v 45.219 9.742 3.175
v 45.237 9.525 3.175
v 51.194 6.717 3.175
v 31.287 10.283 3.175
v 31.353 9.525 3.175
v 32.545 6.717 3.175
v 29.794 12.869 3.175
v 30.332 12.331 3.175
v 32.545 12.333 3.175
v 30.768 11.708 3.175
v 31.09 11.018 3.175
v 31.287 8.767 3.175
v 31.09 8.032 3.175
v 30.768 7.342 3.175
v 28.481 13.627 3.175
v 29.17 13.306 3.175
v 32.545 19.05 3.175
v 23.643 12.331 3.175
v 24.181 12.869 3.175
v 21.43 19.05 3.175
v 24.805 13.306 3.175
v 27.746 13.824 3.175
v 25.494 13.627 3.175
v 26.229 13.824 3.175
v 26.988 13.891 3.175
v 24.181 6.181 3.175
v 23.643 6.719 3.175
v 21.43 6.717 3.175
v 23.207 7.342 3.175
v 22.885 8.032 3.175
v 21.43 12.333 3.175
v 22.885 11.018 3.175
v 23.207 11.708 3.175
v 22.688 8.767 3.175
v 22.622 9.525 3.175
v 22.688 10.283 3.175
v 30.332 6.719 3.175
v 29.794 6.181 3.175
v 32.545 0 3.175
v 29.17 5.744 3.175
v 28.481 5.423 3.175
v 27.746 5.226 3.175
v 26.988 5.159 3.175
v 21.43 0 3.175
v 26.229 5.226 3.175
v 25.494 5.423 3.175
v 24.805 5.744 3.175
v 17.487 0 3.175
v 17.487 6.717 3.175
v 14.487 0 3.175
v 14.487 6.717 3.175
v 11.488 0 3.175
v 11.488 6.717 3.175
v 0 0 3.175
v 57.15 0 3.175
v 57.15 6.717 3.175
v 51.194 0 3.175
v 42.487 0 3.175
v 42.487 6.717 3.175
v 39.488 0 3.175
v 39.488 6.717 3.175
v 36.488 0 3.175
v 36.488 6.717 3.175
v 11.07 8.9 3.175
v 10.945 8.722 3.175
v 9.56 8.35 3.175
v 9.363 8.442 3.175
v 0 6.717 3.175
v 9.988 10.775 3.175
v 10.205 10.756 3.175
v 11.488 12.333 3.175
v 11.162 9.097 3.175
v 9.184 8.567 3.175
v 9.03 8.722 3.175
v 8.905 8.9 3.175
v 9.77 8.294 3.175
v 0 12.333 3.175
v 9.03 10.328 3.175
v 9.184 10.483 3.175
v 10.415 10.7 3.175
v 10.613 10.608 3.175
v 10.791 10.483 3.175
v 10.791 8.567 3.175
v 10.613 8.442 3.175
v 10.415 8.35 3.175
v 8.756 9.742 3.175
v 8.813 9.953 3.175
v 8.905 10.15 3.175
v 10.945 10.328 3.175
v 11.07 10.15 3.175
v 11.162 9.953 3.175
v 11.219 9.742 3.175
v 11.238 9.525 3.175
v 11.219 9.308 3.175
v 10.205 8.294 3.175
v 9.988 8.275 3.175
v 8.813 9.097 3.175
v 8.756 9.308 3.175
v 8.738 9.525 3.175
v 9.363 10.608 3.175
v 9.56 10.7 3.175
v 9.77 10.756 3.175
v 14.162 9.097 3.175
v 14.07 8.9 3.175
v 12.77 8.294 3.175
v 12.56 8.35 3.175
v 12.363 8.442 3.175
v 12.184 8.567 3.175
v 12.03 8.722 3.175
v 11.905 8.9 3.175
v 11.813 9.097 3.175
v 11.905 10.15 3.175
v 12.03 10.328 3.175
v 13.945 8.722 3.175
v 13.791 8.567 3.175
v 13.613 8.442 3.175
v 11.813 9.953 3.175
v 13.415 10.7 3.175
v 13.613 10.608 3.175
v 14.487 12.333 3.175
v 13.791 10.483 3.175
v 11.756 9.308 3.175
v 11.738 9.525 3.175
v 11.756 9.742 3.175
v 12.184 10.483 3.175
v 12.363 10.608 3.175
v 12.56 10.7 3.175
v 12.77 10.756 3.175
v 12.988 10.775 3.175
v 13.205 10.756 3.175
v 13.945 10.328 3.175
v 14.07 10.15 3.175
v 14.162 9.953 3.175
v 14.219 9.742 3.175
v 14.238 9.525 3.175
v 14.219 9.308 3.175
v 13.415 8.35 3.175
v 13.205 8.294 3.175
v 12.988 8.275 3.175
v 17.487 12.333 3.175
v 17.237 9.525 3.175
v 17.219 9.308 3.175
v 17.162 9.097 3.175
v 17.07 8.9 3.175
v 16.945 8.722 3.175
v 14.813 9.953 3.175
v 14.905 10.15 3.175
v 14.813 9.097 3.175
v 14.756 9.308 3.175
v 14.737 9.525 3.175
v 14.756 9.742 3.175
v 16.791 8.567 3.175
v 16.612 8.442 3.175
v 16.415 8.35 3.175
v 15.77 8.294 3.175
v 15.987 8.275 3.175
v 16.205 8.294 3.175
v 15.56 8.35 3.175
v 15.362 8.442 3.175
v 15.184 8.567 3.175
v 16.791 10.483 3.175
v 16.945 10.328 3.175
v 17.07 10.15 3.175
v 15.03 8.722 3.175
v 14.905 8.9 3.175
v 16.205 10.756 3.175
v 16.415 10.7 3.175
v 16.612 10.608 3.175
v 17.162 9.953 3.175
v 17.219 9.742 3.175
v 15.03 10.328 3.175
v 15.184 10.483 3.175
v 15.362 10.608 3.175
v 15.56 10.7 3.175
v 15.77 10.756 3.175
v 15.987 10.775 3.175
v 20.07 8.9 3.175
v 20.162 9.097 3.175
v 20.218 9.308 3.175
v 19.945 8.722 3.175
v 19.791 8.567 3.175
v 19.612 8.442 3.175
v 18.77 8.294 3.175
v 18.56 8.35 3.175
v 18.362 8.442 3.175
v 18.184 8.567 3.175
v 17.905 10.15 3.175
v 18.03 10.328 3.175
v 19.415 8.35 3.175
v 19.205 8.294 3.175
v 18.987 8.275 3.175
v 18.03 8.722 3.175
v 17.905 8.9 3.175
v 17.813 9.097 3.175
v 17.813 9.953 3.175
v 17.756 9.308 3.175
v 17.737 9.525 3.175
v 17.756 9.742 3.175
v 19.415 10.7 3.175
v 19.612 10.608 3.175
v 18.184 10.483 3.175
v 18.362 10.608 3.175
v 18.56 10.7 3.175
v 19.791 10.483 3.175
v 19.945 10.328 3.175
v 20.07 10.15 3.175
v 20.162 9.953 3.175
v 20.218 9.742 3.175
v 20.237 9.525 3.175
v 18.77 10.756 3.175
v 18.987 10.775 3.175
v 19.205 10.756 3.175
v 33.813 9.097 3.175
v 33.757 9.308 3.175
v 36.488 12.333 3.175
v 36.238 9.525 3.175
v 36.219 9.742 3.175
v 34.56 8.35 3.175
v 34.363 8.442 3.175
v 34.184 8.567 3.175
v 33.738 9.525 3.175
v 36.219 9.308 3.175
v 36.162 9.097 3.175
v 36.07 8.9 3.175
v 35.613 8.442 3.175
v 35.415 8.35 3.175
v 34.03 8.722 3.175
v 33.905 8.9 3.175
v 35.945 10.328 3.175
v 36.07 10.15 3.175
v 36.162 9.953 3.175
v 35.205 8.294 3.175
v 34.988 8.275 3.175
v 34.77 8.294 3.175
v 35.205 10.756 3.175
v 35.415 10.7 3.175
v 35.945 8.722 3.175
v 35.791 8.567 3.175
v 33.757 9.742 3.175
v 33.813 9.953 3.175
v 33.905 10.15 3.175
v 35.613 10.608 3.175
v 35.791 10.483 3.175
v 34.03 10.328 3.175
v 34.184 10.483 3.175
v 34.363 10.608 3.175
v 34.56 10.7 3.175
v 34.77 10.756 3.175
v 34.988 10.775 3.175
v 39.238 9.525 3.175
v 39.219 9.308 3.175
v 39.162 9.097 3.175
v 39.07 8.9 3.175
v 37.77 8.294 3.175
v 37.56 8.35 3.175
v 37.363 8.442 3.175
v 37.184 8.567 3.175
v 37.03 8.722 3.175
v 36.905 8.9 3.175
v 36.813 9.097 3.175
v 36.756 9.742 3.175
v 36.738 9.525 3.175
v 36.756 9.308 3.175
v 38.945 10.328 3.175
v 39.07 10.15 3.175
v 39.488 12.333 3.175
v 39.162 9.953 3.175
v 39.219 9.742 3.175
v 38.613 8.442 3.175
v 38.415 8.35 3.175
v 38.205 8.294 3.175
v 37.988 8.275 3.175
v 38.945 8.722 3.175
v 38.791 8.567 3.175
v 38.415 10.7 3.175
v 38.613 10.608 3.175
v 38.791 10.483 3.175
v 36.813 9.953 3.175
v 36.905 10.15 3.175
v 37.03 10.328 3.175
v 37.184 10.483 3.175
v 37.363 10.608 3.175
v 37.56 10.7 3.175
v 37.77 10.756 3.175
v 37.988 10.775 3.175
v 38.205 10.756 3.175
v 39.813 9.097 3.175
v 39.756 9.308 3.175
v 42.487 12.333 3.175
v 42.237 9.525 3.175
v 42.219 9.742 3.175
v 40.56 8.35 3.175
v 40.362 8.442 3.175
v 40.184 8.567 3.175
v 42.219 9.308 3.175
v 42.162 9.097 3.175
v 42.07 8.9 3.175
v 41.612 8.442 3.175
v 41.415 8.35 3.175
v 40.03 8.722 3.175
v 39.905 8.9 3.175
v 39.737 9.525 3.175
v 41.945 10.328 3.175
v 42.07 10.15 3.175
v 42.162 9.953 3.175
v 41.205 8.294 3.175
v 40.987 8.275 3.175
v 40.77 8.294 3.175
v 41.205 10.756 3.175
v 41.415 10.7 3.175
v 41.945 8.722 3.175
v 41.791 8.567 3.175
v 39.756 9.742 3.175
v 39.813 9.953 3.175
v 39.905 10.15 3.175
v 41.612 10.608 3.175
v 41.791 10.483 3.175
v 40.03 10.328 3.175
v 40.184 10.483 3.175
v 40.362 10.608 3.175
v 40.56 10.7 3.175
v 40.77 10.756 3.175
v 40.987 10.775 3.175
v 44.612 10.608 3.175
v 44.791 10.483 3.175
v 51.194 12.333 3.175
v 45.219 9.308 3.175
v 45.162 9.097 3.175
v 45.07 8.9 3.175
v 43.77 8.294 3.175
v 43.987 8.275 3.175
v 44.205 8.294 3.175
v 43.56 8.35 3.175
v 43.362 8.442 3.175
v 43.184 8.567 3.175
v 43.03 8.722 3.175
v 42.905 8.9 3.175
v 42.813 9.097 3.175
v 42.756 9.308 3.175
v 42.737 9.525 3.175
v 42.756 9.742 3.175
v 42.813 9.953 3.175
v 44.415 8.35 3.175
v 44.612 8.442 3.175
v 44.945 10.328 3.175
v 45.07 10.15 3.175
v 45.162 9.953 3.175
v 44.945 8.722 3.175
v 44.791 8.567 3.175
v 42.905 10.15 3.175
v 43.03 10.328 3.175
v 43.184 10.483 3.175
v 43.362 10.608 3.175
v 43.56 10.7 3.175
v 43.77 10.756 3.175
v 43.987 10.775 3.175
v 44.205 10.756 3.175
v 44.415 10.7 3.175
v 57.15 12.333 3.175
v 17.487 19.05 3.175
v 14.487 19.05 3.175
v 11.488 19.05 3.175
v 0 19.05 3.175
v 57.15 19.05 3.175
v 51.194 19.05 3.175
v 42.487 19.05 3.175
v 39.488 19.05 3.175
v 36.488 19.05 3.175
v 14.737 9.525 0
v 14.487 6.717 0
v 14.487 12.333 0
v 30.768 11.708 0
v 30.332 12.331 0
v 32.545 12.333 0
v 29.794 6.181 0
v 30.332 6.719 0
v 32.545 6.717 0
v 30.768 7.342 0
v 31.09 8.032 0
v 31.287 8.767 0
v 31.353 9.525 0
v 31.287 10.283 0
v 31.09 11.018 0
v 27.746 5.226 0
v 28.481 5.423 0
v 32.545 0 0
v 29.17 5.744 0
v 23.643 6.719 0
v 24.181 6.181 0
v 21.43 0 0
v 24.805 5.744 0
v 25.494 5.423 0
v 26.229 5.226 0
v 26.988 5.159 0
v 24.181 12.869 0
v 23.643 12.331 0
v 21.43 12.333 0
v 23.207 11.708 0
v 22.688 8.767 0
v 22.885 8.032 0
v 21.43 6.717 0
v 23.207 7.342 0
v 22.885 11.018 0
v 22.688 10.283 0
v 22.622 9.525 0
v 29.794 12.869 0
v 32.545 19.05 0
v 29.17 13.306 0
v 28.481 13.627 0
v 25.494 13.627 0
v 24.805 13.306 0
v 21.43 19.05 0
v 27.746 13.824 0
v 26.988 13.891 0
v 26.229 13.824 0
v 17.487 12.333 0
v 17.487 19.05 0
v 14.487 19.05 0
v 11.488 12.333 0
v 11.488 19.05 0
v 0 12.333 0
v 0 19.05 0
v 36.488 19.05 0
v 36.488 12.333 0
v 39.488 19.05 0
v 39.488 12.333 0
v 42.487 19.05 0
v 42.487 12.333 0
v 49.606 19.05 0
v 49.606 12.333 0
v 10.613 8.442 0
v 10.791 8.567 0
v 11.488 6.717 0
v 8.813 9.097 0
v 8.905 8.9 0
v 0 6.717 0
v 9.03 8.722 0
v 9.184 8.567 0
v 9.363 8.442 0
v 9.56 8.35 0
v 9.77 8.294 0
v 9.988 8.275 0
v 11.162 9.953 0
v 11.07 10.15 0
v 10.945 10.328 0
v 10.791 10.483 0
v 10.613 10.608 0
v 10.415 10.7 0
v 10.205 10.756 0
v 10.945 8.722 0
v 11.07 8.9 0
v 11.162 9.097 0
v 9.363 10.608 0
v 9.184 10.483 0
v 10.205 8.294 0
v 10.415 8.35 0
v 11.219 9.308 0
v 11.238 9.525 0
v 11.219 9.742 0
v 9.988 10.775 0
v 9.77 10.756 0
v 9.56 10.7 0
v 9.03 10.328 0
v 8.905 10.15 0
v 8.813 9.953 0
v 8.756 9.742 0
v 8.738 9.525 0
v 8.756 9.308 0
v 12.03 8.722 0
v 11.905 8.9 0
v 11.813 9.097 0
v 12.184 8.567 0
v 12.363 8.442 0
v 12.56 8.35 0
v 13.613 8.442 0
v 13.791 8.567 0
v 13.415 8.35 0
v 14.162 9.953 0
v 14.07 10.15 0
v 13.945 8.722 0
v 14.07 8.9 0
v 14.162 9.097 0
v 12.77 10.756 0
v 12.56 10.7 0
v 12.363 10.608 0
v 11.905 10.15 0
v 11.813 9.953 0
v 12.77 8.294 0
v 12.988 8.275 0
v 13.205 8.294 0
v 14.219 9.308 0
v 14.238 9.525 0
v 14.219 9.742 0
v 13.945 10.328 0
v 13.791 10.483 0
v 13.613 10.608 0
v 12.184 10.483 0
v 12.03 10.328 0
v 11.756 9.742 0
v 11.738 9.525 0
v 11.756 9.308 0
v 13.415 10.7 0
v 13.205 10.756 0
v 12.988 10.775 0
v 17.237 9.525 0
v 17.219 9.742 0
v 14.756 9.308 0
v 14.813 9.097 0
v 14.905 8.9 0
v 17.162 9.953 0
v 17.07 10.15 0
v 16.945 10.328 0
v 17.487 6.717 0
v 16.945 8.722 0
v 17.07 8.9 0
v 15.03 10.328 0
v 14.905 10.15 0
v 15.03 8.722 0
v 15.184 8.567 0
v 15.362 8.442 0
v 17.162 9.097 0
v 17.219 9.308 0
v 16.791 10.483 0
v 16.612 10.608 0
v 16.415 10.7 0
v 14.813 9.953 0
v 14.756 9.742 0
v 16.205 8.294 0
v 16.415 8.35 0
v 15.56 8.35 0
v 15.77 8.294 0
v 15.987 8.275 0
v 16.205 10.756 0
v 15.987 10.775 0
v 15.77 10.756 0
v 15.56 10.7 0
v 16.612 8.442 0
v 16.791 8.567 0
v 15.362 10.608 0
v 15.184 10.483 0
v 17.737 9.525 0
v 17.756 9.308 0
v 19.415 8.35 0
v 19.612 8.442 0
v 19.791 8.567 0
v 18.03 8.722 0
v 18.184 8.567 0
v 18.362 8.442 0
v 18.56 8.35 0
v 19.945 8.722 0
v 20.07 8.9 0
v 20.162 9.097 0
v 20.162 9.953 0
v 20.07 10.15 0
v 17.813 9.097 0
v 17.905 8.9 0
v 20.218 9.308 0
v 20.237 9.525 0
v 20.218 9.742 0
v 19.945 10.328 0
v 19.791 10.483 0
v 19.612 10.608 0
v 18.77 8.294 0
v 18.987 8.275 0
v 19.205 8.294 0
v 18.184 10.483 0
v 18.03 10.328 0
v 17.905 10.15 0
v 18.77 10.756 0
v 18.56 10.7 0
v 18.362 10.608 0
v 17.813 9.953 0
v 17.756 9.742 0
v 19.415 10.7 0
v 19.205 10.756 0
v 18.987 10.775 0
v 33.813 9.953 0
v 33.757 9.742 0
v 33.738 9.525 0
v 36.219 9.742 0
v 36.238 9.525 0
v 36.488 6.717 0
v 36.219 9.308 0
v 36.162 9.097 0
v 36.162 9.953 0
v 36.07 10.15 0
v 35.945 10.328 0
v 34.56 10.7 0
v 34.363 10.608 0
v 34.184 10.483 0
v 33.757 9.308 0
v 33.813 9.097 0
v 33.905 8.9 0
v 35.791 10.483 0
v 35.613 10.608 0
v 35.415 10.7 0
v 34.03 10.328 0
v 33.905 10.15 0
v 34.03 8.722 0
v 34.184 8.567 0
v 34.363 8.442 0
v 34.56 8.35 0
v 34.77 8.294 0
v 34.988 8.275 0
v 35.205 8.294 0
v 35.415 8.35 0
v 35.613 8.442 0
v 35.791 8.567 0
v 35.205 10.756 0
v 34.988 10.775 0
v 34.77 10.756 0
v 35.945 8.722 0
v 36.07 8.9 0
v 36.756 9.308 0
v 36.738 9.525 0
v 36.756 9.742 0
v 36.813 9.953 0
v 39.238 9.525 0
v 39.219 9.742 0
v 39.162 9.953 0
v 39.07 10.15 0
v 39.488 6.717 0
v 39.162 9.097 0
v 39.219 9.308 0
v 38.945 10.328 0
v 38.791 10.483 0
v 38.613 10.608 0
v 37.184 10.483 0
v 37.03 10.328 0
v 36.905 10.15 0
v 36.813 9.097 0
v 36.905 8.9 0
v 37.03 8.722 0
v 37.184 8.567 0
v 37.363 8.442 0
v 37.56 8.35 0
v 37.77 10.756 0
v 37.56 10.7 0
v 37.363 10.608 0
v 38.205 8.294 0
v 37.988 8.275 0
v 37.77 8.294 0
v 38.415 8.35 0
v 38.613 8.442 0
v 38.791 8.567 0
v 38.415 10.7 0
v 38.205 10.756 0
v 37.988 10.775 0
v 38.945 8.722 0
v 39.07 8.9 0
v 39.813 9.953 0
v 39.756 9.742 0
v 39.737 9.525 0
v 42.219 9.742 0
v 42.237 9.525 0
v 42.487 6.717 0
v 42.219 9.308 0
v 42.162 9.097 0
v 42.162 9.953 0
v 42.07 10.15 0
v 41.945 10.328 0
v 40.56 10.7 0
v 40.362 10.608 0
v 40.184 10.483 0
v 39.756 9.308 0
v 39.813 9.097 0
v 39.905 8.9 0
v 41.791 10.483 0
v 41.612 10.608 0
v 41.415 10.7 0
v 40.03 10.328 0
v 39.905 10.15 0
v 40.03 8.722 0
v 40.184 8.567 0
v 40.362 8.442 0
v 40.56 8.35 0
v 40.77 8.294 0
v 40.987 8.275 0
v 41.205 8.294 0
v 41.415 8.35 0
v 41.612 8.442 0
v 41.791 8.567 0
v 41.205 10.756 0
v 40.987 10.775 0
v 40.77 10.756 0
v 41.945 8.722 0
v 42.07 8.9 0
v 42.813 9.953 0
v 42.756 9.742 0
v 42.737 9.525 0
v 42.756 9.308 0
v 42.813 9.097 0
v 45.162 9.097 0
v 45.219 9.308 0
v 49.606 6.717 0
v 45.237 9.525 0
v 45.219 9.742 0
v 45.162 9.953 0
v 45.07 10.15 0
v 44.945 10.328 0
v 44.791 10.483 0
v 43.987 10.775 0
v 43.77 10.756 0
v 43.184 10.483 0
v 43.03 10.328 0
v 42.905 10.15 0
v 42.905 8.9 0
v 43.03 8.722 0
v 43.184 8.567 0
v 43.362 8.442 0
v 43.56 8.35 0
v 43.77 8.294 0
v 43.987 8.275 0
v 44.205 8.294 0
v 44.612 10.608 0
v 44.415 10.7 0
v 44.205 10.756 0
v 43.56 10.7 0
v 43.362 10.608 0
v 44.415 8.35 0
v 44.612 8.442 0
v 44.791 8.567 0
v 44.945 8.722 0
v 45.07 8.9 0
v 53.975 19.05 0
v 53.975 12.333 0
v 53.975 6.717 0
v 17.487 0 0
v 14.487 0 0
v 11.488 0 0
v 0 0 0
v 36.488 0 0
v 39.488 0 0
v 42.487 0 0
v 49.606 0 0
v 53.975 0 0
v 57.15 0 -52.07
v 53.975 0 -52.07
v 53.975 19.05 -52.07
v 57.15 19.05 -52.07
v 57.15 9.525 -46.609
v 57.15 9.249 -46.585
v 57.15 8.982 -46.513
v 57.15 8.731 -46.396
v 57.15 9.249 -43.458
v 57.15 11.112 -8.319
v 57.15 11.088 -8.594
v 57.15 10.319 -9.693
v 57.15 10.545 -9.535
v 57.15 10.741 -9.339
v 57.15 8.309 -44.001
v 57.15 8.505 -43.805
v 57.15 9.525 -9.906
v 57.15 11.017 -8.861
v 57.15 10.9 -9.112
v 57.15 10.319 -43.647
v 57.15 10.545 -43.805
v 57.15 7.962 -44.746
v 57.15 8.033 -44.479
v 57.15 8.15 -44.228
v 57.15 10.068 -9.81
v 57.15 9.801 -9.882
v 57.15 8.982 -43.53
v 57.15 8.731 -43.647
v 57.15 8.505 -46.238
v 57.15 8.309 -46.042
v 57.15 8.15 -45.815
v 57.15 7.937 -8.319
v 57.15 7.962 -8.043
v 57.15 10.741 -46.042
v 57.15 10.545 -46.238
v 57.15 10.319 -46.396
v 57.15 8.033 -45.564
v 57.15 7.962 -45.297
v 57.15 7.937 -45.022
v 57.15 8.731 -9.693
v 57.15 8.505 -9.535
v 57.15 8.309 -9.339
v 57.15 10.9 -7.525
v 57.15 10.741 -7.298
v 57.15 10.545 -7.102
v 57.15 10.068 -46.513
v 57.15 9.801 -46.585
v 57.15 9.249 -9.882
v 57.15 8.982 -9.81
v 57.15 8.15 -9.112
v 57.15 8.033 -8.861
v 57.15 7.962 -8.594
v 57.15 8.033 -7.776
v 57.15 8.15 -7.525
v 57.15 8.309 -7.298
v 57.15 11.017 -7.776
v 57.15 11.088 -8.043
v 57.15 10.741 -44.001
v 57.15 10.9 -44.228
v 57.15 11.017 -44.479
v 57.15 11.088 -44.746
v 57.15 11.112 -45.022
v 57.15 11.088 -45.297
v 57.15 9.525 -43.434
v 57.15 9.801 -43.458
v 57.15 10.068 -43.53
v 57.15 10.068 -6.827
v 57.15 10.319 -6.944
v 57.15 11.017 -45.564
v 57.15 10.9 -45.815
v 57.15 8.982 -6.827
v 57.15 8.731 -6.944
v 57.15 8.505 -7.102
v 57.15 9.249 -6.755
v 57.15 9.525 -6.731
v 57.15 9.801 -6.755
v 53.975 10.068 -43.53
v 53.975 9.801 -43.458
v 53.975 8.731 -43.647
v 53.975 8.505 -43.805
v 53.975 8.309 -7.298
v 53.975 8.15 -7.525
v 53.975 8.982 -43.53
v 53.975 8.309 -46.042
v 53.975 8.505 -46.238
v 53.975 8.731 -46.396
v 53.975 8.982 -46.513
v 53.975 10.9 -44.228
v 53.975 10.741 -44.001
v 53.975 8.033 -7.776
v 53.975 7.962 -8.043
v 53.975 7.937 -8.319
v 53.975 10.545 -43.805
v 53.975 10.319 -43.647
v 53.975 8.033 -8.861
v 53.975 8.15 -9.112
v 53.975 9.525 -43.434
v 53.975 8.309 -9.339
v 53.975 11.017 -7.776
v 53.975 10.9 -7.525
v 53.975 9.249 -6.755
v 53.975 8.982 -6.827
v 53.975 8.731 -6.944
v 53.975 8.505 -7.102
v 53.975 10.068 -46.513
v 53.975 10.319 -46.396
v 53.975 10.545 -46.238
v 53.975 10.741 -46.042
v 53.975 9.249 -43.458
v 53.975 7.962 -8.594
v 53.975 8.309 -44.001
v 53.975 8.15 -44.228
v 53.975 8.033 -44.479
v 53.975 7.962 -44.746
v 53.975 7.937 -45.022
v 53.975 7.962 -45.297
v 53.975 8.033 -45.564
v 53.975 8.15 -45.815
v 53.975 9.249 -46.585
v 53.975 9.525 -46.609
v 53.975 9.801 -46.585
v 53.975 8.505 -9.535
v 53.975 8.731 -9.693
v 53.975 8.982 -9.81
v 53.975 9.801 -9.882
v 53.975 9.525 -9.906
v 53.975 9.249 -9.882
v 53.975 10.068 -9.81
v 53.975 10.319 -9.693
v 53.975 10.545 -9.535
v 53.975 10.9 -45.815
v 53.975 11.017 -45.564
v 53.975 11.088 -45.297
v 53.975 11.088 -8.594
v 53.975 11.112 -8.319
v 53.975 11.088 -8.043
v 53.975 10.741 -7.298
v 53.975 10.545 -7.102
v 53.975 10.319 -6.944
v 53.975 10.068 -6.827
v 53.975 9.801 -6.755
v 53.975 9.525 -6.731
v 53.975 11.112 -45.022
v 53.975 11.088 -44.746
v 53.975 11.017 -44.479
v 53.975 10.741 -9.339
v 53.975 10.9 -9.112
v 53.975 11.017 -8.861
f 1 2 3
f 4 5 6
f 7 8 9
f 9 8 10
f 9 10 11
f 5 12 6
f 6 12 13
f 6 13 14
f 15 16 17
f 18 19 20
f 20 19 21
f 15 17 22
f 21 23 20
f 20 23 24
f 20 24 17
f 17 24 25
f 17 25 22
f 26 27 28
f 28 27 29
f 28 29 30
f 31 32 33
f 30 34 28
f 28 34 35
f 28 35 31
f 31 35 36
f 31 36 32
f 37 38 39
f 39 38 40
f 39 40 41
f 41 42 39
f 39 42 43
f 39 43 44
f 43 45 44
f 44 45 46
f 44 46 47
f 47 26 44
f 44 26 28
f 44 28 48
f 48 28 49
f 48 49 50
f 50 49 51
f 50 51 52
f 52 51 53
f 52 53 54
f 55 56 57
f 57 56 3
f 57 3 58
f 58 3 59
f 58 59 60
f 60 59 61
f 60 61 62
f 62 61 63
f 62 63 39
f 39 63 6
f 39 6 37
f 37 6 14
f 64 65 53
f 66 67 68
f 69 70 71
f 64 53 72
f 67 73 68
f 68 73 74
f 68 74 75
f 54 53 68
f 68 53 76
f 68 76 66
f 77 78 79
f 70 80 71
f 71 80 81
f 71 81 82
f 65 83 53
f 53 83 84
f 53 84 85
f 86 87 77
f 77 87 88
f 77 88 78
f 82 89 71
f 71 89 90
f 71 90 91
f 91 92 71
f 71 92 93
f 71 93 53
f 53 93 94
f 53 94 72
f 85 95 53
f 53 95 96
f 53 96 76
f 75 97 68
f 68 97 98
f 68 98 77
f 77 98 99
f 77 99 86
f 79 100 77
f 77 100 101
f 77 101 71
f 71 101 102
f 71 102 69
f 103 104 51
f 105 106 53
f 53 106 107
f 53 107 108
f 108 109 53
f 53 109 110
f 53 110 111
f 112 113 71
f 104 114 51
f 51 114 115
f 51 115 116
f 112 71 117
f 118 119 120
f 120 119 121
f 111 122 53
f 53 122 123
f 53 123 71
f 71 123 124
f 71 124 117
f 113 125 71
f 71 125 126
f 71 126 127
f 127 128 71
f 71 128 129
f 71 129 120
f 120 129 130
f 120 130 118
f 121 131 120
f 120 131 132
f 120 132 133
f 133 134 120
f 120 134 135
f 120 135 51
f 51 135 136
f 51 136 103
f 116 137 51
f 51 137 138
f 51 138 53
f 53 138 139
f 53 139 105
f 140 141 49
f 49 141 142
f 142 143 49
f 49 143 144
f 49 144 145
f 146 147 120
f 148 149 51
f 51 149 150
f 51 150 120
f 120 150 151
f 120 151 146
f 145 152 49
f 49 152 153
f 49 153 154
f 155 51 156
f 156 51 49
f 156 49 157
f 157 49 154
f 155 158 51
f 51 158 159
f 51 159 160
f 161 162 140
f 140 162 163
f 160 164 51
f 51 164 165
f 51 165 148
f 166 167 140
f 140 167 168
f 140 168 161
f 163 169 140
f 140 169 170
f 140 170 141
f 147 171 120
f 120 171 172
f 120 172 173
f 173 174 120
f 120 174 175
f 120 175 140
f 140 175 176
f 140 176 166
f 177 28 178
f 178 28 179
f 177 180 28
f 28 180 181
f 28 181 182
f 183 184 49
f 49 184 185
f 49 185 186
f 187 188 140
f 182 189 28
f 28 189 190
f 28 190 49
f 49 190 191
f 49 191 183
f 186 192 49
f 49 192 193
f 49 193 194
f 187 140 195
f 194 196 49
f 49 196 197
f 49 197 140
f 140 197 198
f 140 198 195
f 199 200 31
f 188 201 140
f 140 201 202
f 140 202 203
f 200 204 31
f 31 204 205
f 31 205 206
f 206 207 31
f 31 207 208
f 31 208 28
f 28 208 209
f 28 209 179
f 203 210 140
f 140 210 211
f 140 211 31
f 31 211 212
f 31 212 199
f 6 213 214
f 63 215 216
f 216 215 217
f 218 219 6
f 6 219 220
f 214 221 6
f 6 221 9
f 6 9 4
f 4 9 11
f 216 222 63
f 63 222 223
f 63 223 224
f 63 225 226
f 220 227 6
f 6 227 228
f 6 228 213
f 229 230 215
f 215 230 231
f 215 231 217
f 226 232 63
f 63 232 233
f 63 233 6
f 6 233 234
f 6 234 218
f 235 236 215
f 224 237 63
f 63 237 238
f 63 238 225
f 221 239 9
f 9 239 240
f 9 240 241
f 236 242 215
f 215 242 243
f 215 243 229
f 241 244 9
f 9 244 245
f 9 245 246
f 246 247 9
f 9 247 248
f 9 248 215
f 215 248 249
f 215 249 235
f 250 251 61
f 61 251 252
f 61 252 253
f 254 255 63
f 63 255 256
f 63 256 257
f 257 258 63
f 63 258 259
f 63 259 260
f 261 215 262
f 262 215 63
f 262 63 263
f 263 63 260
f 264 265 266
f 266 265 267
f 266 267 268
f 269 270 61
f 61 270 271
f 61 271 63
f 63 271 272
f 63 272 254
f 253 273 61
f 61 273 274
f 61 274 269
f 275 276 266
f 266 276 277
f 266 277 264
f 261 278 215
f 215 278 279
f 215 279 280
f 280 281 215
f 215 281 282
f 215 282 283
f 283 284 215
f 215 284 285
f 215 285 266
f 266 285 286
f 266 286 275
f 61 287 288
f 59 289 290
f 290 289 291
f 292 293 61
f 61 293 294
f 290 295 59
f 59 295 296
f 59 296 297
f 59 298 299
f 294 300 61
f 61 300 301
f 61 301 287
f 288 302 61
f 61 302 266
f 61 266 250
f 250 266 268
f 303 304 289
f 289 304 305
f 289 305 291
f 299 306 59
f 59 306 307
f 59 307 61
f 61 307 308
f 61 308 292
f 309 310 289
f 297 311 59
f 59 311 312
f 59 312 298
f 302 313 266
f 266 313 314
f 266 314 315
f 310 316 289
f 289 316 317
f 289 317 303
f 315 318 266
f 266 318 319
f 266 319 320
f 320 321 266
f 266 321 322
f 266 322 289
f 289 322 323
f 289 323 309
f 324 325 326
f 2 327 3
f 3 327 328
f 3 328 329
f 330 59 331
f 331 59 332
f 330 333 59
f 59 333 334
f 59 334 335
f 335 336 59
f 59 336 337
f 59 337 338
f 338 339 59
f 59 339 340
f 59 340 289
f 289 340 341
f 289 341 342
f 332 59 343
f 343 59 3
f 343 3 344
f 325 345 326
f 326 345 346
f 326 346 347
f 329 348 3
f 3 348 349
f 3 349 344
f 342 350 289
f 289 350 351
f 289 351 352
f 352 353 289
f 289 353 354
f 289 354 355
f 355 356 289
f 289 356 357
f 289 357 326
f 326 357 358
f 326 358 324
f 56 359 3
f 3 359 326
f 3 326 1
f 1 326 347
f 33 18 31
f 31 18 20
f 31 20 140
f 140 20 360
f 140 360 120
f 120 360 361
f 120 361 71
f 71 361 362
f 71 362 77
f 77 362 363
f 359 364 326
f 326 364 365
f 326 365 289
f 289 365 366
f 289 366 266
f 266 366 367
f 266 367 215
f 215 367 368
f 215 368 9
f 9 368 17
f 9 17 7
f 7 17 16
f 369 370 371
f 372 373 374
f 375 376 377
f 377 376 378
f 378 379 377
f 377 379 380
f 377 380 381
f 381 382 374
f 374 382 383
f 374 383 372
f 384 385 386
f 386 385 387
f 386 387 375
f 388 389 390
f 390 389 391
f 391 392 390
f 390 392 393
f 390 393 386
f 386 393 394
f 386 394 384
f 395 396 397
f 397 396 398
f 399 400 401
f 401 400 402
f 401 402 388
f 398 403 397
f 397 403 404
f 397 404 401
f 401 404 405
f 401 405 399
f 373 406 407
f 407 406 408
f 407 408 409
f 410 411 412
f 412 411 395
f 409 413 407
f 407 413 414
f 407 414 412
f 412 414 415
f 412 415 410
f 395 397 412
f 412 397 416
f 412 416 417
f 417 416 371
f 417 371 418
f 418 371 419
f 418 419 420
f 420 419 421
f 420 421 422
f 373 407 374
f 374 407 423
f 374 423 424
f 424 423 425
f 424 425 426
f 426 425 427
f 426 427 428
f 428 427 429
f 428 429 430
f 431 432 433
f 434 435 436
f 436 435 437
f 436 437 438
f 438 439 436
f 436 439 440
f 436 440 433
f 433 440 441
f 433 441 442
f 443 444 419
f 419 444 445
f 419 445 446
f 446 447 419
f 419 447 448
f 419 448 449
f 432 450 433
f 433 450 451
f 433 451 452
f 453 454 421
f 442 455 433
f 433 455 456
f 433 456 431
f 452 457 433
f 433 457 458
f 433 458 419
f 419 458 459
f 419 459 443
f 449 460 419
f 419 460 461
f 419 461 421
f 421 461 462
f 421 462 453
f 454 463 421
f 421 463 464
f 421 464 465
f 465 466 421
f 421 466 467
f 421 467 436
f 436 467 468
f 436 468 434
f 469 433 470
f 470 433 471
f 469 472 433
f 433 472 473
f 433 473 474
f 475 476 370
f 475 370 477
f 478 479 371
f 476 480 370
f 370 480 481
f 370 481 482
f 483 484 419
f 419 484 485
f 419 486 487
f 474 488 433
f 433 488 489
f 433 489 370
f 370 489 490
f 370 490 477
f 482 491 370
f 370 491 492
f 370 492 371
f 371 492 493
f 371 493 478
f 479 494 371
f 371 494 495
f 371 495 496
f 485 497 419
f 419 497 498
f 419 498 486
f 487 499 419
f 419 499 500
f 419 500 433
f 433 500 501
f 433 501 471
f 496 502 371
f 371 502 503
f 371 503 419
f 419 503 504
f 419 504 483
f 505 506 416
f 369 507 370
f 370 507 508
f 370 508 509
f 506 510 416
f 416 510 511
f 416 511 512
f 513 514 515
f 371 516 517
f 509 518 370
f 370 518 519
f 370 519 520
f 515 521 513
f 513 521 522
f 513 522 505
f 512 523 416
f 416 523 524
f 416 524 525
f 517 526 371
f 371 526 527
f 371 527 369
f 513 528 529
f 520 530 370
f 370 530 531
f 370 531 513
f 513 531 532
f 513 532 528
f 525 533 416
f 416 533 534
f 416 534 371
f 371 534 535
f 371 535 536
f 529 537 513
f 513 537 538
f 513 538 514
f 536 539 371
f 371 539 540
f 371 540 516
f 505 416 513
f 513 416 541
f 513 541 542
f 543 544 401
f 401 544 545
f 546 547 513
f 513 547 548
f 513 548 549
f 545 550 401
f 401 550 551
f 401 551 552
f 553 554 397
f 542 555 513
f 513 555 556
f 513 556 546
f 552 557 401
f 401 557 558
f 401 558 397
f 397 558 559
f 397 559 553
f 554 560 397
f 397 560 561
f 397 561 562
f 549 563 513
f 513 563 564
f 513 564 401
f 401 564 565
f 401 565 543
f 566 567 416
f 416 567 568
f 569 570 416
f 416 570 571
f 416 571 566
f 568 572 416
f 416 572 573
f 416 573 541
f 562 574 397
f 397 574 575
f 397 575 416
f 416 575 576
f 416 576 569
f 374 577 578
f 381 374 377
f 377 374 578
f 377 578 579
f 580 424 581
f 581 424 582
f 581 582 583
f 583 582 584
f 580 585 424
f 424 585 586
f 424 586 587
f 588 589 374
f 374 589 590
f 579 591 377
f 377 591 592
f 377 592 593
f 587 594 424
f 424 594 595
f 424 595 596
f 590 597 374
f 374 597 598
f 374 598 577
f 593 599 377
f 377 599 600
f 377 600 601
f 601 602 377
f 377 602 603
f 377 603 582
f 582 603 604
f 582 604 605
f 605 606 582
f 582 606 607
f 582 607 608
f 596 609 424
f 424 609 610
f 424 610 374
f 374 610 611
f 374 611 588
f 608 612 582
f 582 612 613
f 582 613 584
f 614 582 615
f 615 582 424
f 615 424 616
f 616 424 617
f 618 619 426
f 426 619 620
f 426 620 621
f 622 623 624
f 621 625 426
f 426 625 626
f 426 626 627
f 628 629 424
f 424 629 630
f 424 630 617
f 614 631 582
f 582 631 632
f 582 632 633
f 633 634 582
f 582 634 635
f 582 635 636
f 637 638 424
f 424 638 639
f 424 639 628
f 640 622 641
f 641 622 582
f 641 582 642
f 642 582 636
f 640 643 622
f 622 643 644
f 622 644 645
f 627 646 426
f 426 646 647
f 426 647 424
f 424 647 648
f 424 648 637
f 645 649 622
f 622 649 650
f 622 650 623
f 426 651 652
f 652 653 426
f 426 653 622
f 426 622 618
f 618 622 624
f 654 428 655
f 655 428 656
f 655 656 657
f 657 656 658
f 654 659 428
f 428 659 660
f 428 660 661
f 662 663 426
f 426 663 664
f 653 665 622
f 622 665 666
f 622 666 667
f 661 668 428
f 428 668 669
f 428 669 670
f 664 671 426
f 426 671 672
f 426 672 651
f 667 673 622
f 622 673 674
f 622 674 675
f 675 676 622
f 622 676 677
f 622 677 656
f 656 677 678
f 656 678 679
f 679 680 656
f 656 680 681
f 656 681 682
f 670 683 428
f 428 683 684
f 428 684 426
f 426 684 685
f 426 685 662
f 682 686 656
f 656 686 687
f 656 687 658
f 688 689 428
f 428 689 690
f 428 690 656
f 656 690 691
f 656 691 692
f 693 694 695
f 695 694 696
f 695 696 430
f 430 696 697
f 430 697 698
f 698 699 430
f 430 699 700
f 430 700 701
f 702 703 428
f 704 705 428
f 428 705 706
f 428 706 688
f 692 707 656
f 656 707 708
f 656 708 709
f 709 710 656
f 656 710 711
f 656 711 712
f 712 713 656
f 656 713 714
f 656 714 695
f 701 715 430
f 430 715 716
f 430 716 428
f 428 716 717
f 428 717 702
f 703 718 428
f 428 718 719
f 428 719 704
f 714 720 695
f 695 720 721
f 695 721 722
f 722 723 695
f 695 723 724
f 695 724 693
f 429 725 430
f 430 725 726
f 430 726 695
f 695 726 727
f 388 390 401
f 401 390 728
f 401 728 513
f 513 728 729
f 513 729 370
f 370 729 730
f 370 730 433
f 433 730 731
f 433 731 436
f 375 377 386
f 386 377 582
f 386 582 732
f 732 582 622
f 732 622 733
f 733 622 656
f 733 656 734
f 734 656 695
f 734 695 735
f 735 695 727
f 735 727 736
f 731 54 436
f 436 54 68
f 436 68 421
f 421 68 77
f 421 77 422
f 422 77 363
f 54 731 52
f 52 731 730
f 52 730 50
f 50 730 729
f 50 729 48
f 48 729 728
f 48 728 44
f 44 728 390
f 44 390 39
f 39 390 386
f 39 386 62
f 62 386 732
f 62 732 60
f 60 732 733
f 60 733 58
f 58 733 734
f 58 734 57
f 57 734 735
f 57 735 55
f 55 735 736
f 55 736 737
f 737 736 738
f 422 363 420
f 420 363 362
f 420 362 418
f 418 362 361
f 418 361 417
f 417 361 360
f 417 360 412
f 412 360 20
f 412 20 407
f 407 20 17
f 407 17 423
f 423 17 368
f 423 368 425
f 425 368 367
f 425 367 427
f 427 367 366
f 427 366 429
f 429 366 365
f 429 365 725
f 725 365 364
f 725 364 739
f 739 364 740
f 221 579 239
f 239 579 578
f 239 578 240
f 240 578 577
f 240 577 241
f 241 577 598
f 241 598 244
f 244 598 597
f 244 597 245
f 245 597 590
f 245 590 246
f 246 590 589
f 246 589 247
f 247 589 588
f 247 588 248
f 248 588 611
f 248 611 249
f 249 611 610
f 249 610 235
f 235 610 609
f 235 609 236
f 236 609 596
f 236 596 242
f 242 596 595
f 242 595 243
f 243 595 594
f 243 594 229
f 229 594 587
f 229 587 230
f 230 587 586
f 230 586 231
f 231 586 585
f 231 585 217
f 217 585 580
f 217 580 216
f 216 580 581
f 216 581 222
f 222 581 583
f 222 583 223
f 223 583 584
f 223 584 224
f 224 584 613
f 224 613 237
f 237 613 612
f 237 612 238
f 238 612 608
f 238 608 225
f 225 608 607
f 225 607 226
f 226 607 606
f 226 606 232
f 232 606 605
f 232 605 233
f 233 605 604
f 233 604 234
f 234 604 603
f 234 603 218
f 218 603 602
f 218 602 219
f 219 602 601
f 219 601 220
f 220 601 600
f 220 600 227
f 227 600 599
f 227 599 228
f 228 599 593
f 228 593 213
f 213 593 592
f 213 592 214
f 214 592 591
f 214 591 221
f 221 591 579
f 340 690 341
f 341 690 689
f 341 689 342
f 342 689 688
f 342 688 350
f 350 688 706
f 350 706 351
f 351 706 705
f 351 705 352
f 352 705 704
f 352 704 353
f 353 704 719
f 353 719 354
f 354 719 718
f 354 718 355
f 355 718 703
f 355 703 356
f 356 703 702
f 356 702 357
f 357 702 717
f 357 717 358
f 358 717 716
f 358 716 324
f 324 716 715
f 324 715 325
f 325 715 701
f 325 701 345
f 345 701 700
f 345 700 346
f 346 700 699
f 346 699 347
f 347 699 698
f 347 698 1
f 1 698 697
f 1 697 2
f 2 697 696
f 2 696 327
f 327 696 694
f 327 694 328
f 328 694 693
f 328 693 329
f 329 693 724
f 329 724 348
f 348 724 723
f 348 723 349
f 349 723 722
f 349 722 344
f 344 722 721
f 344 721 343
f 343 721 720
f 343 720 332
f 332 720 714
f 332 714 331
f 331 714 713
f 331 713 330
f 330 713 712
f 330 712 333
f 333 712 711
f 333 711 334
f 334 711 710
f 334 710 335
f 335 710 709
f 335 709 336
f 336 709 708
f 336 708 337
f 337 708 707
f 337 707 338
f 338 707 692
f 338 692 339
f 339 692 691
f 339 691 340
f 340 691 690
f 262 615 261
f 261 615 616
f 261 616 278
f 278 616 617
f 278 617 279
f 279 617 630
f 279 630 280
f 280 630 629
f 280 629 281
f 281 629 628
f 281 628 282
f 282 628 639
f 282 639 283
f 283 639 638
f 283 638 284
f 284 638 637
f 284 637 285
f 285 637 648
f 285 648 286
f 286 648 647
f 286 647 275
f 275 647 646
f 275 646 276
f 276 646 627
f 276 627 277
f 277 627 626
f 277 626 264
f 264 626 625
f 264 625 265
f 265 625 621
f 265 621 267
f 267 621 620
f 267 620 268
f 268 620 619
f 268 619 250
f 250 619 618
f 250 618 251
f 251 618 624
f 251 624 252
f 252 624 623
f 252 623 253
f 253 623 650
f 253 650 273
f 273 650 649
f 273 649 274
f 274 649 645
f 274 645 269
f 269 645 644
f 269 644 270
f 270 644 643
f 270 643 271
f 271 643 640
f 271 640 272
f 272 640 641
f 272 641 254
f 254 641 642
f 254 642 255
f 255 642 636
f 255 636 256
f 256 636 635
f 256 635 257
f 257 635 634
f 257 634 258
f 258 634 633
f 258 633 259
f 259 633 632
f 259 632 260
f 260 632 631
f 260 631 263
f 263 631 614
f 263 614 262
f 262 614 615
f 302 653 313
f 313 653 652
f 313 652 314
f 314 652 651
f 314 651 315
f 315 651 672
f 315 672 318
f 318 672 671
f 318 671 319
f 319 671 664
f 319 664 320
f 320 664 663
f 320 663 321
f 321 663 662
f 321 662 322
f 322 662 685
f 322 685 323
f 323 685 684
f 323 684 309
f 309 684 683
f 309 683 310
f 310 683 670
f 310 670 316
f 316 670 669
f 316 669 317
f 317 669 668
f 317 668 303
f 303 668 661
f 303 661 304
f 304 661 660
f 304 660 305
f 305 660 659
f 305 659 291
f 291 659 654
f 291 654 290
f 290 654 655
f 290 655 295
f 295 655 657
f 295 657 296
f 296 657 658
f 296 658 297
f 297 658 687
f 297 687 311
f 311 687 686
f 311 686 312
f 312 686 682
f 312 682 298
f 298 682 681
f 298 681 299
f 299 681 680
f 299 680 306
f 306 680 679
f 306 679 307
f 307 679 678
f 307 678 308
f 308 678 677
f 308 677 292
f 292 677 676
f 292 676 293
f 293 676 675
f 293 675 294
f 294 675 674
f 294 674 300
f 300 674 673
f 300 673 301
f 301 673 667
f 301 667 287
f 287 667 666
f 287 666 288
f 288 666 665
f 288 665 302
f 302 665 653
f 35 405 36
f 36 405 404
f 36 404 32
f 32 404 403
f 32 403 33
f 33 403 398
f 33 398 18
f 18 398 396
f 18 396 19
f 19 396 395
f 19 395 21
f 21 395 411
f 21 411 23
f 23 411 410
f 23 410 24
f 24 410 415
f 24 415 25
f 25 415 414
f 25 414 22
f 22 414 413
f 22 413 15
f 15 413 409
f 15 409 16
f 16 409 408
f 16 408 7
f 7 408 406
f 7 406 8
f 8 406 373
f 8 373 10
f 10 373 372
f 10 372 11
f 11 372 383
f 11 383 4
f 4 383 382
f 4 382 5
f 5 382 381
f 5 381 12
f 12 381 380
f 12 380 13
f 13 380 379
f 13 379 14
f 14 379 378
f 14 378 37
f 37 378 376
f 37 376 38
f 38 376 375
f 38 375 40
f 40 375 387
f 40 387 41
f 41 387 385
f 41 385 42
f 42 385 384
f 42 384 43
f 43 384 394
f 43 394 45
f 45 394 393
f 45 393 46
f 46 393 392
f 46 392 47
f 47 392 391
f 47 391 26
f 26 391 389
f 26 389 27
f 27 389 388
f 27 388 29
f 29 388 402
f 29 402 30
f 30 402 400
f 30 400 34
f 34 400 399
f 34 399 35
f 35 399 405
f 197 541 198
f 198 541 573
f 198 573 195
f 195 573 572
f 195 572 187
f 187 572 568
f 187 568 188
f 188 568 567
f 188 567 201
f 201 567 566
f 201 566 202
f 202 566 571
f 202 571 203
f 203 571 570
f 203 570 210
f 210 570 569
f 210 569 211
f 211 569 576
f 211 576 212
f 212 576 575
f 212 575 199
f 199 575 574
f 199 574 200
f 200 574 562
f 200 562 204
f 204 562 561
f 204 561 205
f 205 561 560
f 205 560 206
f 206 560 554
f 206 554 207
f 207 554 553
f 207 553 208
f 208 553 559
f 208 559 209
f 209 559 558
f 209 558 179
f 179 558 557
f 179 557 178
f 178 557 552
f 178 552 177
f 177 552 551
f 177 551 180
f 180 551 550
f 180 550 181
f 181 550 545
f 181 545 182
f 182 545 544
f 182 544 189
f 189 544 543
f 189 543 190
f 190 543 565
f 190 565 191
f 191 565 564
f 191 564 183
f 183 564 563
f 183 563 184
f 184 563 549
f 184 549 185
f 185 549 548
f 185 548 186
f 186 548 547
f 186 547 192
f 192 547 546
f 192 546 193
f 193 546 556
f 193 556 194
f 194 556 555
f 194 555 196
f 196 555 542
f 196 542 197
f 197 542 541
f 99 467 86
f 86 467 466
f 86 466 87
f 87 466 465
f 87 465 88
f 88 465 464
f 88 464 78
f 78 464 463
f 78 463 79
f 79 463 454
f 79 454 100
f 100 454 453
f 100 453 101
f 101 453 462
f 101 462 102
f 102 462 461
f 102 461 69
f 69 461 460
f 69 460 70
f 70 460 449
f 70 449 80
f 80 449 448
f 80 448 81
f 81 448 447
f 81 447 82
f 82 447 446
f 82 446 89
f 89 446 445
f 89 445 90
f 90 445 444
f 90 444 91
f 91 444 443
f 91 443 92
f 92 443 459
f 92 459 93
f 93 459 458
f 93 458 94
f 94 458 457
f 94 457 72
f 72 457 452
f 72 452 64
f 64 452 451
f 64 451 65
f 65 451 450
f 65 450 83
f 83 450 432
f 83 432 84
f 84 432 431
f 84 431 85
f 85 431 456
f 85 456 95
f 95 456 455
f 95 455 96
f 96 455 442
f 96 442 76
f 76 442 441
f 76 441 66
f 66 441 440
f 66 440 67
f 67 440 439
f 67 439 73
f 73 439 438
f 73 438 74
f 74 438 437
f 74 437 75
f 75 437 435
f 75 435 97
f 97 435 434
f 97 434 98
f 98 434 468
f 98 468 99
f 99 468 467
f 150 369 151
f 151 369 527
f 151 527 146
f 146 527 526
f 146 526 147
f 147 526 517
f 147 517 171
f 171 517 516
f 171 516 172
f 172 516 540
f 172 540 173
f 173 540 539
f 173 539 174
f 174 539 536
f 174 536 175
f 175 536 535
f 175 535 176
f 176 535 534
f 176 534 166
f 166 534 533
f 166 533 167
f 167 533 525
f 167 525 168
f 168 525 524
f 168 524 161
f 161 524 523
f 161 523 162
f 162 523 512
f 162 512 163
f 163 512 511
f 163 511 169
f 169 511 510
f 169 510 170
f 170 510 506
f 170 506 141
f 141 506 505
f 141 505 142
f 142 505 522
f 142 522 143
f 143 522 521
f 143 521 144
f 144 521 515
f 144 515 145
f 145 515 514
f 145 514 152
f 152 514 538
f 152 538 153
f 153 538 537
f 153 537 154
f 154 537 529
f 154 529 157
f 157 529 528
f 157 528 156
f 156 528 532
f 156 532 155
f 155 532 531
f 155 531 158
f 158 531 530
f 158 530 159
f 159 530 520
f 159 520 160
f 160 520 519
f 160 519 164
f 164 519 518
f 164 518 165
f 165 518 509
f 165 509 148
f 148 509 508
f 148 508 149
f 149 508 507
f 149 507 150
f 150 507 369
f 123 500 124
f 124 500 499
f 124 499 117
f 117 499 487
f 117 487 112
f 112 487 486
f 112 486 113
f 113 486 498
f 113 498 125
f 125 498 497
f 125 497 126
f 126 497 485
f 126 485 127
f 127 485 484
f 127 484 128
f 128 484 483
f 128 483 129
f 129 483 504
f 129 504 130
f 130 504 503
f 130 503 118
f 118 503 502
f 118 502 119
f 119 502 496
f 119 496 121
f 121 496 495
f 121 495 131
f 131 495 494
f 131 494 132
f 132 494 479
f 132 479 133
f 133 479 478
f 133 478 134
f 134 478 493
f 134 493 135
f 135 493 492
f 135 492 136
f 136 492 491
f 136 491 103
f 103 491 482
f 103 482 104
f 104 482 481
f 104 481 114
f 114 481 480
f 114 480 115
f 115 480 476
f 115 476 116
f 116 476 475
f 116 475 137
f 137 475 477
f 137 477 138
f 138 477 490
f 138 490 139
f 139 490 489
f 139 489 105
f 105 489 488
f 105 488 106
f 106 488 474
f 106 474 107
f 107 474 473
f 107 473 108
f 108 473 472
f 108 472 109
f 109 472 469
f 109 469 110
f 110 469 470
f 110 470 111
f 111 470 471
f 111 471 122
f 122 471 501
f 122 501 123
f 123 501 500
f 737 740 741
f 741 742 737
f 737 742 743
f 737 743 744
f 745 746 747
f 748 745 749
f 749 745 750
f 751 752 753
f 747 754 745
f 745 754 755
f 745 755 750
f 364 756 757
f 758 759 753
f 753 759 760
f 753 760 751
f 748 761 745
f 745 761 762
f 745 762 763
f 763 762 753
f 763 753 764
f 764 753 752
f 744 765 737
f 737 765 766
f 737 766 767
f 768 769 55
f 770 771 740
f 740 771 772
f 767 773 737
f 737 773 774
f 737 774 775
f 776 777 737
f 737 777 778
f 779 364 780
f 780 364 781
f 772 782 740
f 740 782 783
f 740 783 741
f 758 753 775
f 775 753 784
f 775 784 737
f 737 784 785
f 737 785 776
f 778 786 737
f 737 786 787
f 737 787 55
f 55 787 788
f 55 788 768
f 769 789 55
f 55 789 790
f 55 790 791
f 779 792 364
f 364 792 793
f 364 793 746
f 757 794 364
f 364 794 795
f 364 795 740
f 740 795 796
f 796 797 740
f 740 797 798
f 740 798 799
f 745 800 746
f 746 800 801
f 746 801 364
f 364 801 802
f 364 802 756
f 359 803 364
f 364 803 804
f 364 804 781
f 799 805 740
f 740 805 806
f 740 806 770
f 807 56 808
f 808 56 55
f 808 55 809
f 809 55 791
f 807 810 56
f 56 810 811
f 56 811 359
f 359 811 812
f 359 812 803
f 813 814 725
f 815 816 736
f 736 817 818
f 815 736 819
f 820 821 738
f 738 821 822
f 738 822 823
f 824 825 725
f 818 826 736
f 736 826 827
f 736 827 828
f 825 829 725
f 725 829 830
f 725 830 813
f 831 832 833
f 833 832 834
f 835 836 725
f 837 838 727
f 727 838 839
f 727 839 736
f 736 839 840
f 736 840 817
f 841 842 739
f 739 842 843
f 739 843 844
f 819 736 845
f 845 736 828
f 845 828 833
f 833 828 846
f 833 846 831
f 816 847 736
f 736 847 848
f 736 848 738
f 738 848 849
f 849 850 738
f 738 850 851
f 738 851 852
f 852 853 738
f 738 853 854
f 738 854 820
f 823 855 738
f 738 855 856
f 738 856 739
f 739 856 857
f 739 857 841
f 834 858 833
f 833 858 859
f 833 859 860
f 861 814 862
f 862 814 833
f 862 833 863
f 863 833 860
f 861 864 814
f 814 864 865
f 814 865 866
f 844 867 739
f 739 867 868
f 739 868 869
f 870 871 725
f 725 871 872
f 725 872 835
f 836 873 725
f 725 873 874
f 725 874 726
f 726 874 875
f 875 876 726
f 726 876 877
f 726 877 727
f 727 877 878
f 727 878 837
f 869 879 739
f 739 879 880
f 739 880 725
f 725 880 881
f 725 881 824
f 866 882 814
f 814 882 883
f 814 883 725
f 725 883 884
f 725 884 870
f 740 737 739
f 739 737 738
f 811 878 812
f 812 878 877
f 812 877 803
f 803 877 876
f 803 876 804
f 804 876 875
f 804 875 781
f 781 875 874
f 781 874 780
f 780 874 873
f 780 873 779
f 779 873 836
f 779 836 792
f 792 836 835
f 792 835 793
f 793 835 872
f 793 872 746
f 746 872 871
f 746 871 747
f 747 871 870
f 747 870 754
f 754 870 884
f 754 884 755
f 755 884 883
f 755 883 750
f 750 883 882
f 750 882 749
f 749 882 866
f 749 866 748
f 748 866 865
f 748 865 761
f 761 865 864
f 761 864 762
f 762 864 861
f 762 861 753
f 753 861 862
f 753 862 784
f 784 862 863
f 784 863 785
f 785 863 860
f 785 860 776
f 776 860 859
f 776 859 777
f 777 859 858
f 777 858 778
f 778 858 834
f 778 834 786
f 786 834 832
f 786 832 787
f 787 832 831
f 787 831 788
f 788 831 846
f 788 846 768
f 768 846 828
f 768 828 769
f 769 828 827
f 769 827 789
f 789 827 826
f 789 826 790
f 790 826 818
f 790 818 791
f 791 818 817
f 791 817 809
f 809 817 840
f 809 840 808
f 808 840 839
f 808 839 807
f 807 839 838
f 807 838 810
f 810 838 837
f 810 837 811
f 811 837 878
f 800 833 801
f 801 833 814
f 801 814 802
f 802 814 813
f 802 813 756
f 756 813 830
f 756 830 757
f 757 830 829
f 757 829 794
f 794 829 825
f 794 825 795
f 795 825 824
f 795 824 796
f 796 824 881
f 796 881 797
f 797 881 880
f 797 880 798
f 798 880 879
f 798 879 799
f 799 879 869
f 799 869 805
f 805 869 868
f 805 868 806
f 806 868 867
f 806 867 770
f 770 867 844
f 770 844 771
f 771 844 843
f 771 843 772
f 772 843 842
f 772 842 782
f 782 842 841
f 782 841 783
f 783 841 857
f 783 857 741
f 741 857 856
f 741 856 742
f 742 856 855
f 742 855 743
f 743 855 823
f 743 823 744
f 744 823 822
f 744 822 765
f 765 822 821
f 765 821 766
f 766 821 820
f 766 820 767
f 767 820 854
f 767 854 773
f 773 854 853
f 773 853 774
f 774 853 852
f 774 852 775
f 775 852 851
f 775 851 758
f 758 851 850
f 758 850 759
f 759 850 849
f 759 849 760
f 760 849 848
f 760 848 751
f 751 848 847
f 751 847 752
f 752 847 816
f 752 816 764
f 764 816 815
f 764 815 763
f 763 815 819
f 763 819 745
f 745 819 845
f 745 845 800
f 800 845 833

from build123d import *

# Parameters (mm, degrees)
SKETCH1_W           = 53.975
SKETCH1_H           = 19.05
SKETCH1_R           = 1.25
SKETCH1_R_2         = 4.365625
BOSS_EXTRUDE1_DEPTH = 3.175
SKETCH2_W           = 55.245
SKETCH2_H           = 19.05
SKETCH2_R           = 1.5875
BOSS_EXTRUDE2_DEPTH = 3.175


with BuildPart() as part:
    # Sketch1 → Boss-Extrude1 (new body)
    with BuildSketch(Plane.XY):
        with Locations((26.9875, 9.525)):
            Rectangle(SKETCH1_W, SKETCH1_H)
        with Locations((34.9875114, 9.525)):
            Circle(SKETCH1_R, mode=Mode.SUBTRACT)
        with Locations((43.9874934, 9.525)):
            Circle(SKETCH1_R, mode=Mode.SUBTRACT)
        with Locations((37.9875054, 9.525)):
            Circle(SKETCH1_R, mode=Mode.SUBTRACT)
        with Locations((40.9874994, 9.525)):
            Circle(SKETCH1_R, mode=Mode.SUBTRACT)
        with Locations((18.9874886, 9.525)):
            Circle(SKETCH1_R, mode=Mode.SUBTRACT)
        with Locations((15.9874946, 9.525)):
            Circle(SKETCH1_R, mode=Mode.SUBTRACT)
        with Locations((12.9875006, 9.525)):
            Circle(SKETCH1_R, mode=Mode.SUBTRACT)
        with Locations((9.9875066, 9.525)):
            Circle(SKETCH1_R, mode=Mode.SUBTRACT)
        with Locations((26.9875, 9.525)):
            Circle(SKETCH1_R_2, mode=Mode.SUBTRACT)
    extrude(amount=BOSS_EXTRUDE1_DEPTH)

    # Sketch2 → Boss-Extrude2 (add)
    with BuildSketch(Plane(origin=(53.975, 0, 0), x_dir=(0, 0, -1), z_dir=(1, 0, 0))):
        with Locations((24.4475, 9.525)):
            Rectangle(SKETCH2_W, SKETCH2_H)
        with Locations((8.3185, 9.525)):
            Circle(SKETCH2_R, mode=Mode.SUBTRACT)
        with Locations((45.0215, 9.525)):
            Circle(SKETCH2_R, mode=Mode.SUBTRACT)
    extrude(amount=BOSS_EXTRUDE2_DEPTH)


solid = part.part
